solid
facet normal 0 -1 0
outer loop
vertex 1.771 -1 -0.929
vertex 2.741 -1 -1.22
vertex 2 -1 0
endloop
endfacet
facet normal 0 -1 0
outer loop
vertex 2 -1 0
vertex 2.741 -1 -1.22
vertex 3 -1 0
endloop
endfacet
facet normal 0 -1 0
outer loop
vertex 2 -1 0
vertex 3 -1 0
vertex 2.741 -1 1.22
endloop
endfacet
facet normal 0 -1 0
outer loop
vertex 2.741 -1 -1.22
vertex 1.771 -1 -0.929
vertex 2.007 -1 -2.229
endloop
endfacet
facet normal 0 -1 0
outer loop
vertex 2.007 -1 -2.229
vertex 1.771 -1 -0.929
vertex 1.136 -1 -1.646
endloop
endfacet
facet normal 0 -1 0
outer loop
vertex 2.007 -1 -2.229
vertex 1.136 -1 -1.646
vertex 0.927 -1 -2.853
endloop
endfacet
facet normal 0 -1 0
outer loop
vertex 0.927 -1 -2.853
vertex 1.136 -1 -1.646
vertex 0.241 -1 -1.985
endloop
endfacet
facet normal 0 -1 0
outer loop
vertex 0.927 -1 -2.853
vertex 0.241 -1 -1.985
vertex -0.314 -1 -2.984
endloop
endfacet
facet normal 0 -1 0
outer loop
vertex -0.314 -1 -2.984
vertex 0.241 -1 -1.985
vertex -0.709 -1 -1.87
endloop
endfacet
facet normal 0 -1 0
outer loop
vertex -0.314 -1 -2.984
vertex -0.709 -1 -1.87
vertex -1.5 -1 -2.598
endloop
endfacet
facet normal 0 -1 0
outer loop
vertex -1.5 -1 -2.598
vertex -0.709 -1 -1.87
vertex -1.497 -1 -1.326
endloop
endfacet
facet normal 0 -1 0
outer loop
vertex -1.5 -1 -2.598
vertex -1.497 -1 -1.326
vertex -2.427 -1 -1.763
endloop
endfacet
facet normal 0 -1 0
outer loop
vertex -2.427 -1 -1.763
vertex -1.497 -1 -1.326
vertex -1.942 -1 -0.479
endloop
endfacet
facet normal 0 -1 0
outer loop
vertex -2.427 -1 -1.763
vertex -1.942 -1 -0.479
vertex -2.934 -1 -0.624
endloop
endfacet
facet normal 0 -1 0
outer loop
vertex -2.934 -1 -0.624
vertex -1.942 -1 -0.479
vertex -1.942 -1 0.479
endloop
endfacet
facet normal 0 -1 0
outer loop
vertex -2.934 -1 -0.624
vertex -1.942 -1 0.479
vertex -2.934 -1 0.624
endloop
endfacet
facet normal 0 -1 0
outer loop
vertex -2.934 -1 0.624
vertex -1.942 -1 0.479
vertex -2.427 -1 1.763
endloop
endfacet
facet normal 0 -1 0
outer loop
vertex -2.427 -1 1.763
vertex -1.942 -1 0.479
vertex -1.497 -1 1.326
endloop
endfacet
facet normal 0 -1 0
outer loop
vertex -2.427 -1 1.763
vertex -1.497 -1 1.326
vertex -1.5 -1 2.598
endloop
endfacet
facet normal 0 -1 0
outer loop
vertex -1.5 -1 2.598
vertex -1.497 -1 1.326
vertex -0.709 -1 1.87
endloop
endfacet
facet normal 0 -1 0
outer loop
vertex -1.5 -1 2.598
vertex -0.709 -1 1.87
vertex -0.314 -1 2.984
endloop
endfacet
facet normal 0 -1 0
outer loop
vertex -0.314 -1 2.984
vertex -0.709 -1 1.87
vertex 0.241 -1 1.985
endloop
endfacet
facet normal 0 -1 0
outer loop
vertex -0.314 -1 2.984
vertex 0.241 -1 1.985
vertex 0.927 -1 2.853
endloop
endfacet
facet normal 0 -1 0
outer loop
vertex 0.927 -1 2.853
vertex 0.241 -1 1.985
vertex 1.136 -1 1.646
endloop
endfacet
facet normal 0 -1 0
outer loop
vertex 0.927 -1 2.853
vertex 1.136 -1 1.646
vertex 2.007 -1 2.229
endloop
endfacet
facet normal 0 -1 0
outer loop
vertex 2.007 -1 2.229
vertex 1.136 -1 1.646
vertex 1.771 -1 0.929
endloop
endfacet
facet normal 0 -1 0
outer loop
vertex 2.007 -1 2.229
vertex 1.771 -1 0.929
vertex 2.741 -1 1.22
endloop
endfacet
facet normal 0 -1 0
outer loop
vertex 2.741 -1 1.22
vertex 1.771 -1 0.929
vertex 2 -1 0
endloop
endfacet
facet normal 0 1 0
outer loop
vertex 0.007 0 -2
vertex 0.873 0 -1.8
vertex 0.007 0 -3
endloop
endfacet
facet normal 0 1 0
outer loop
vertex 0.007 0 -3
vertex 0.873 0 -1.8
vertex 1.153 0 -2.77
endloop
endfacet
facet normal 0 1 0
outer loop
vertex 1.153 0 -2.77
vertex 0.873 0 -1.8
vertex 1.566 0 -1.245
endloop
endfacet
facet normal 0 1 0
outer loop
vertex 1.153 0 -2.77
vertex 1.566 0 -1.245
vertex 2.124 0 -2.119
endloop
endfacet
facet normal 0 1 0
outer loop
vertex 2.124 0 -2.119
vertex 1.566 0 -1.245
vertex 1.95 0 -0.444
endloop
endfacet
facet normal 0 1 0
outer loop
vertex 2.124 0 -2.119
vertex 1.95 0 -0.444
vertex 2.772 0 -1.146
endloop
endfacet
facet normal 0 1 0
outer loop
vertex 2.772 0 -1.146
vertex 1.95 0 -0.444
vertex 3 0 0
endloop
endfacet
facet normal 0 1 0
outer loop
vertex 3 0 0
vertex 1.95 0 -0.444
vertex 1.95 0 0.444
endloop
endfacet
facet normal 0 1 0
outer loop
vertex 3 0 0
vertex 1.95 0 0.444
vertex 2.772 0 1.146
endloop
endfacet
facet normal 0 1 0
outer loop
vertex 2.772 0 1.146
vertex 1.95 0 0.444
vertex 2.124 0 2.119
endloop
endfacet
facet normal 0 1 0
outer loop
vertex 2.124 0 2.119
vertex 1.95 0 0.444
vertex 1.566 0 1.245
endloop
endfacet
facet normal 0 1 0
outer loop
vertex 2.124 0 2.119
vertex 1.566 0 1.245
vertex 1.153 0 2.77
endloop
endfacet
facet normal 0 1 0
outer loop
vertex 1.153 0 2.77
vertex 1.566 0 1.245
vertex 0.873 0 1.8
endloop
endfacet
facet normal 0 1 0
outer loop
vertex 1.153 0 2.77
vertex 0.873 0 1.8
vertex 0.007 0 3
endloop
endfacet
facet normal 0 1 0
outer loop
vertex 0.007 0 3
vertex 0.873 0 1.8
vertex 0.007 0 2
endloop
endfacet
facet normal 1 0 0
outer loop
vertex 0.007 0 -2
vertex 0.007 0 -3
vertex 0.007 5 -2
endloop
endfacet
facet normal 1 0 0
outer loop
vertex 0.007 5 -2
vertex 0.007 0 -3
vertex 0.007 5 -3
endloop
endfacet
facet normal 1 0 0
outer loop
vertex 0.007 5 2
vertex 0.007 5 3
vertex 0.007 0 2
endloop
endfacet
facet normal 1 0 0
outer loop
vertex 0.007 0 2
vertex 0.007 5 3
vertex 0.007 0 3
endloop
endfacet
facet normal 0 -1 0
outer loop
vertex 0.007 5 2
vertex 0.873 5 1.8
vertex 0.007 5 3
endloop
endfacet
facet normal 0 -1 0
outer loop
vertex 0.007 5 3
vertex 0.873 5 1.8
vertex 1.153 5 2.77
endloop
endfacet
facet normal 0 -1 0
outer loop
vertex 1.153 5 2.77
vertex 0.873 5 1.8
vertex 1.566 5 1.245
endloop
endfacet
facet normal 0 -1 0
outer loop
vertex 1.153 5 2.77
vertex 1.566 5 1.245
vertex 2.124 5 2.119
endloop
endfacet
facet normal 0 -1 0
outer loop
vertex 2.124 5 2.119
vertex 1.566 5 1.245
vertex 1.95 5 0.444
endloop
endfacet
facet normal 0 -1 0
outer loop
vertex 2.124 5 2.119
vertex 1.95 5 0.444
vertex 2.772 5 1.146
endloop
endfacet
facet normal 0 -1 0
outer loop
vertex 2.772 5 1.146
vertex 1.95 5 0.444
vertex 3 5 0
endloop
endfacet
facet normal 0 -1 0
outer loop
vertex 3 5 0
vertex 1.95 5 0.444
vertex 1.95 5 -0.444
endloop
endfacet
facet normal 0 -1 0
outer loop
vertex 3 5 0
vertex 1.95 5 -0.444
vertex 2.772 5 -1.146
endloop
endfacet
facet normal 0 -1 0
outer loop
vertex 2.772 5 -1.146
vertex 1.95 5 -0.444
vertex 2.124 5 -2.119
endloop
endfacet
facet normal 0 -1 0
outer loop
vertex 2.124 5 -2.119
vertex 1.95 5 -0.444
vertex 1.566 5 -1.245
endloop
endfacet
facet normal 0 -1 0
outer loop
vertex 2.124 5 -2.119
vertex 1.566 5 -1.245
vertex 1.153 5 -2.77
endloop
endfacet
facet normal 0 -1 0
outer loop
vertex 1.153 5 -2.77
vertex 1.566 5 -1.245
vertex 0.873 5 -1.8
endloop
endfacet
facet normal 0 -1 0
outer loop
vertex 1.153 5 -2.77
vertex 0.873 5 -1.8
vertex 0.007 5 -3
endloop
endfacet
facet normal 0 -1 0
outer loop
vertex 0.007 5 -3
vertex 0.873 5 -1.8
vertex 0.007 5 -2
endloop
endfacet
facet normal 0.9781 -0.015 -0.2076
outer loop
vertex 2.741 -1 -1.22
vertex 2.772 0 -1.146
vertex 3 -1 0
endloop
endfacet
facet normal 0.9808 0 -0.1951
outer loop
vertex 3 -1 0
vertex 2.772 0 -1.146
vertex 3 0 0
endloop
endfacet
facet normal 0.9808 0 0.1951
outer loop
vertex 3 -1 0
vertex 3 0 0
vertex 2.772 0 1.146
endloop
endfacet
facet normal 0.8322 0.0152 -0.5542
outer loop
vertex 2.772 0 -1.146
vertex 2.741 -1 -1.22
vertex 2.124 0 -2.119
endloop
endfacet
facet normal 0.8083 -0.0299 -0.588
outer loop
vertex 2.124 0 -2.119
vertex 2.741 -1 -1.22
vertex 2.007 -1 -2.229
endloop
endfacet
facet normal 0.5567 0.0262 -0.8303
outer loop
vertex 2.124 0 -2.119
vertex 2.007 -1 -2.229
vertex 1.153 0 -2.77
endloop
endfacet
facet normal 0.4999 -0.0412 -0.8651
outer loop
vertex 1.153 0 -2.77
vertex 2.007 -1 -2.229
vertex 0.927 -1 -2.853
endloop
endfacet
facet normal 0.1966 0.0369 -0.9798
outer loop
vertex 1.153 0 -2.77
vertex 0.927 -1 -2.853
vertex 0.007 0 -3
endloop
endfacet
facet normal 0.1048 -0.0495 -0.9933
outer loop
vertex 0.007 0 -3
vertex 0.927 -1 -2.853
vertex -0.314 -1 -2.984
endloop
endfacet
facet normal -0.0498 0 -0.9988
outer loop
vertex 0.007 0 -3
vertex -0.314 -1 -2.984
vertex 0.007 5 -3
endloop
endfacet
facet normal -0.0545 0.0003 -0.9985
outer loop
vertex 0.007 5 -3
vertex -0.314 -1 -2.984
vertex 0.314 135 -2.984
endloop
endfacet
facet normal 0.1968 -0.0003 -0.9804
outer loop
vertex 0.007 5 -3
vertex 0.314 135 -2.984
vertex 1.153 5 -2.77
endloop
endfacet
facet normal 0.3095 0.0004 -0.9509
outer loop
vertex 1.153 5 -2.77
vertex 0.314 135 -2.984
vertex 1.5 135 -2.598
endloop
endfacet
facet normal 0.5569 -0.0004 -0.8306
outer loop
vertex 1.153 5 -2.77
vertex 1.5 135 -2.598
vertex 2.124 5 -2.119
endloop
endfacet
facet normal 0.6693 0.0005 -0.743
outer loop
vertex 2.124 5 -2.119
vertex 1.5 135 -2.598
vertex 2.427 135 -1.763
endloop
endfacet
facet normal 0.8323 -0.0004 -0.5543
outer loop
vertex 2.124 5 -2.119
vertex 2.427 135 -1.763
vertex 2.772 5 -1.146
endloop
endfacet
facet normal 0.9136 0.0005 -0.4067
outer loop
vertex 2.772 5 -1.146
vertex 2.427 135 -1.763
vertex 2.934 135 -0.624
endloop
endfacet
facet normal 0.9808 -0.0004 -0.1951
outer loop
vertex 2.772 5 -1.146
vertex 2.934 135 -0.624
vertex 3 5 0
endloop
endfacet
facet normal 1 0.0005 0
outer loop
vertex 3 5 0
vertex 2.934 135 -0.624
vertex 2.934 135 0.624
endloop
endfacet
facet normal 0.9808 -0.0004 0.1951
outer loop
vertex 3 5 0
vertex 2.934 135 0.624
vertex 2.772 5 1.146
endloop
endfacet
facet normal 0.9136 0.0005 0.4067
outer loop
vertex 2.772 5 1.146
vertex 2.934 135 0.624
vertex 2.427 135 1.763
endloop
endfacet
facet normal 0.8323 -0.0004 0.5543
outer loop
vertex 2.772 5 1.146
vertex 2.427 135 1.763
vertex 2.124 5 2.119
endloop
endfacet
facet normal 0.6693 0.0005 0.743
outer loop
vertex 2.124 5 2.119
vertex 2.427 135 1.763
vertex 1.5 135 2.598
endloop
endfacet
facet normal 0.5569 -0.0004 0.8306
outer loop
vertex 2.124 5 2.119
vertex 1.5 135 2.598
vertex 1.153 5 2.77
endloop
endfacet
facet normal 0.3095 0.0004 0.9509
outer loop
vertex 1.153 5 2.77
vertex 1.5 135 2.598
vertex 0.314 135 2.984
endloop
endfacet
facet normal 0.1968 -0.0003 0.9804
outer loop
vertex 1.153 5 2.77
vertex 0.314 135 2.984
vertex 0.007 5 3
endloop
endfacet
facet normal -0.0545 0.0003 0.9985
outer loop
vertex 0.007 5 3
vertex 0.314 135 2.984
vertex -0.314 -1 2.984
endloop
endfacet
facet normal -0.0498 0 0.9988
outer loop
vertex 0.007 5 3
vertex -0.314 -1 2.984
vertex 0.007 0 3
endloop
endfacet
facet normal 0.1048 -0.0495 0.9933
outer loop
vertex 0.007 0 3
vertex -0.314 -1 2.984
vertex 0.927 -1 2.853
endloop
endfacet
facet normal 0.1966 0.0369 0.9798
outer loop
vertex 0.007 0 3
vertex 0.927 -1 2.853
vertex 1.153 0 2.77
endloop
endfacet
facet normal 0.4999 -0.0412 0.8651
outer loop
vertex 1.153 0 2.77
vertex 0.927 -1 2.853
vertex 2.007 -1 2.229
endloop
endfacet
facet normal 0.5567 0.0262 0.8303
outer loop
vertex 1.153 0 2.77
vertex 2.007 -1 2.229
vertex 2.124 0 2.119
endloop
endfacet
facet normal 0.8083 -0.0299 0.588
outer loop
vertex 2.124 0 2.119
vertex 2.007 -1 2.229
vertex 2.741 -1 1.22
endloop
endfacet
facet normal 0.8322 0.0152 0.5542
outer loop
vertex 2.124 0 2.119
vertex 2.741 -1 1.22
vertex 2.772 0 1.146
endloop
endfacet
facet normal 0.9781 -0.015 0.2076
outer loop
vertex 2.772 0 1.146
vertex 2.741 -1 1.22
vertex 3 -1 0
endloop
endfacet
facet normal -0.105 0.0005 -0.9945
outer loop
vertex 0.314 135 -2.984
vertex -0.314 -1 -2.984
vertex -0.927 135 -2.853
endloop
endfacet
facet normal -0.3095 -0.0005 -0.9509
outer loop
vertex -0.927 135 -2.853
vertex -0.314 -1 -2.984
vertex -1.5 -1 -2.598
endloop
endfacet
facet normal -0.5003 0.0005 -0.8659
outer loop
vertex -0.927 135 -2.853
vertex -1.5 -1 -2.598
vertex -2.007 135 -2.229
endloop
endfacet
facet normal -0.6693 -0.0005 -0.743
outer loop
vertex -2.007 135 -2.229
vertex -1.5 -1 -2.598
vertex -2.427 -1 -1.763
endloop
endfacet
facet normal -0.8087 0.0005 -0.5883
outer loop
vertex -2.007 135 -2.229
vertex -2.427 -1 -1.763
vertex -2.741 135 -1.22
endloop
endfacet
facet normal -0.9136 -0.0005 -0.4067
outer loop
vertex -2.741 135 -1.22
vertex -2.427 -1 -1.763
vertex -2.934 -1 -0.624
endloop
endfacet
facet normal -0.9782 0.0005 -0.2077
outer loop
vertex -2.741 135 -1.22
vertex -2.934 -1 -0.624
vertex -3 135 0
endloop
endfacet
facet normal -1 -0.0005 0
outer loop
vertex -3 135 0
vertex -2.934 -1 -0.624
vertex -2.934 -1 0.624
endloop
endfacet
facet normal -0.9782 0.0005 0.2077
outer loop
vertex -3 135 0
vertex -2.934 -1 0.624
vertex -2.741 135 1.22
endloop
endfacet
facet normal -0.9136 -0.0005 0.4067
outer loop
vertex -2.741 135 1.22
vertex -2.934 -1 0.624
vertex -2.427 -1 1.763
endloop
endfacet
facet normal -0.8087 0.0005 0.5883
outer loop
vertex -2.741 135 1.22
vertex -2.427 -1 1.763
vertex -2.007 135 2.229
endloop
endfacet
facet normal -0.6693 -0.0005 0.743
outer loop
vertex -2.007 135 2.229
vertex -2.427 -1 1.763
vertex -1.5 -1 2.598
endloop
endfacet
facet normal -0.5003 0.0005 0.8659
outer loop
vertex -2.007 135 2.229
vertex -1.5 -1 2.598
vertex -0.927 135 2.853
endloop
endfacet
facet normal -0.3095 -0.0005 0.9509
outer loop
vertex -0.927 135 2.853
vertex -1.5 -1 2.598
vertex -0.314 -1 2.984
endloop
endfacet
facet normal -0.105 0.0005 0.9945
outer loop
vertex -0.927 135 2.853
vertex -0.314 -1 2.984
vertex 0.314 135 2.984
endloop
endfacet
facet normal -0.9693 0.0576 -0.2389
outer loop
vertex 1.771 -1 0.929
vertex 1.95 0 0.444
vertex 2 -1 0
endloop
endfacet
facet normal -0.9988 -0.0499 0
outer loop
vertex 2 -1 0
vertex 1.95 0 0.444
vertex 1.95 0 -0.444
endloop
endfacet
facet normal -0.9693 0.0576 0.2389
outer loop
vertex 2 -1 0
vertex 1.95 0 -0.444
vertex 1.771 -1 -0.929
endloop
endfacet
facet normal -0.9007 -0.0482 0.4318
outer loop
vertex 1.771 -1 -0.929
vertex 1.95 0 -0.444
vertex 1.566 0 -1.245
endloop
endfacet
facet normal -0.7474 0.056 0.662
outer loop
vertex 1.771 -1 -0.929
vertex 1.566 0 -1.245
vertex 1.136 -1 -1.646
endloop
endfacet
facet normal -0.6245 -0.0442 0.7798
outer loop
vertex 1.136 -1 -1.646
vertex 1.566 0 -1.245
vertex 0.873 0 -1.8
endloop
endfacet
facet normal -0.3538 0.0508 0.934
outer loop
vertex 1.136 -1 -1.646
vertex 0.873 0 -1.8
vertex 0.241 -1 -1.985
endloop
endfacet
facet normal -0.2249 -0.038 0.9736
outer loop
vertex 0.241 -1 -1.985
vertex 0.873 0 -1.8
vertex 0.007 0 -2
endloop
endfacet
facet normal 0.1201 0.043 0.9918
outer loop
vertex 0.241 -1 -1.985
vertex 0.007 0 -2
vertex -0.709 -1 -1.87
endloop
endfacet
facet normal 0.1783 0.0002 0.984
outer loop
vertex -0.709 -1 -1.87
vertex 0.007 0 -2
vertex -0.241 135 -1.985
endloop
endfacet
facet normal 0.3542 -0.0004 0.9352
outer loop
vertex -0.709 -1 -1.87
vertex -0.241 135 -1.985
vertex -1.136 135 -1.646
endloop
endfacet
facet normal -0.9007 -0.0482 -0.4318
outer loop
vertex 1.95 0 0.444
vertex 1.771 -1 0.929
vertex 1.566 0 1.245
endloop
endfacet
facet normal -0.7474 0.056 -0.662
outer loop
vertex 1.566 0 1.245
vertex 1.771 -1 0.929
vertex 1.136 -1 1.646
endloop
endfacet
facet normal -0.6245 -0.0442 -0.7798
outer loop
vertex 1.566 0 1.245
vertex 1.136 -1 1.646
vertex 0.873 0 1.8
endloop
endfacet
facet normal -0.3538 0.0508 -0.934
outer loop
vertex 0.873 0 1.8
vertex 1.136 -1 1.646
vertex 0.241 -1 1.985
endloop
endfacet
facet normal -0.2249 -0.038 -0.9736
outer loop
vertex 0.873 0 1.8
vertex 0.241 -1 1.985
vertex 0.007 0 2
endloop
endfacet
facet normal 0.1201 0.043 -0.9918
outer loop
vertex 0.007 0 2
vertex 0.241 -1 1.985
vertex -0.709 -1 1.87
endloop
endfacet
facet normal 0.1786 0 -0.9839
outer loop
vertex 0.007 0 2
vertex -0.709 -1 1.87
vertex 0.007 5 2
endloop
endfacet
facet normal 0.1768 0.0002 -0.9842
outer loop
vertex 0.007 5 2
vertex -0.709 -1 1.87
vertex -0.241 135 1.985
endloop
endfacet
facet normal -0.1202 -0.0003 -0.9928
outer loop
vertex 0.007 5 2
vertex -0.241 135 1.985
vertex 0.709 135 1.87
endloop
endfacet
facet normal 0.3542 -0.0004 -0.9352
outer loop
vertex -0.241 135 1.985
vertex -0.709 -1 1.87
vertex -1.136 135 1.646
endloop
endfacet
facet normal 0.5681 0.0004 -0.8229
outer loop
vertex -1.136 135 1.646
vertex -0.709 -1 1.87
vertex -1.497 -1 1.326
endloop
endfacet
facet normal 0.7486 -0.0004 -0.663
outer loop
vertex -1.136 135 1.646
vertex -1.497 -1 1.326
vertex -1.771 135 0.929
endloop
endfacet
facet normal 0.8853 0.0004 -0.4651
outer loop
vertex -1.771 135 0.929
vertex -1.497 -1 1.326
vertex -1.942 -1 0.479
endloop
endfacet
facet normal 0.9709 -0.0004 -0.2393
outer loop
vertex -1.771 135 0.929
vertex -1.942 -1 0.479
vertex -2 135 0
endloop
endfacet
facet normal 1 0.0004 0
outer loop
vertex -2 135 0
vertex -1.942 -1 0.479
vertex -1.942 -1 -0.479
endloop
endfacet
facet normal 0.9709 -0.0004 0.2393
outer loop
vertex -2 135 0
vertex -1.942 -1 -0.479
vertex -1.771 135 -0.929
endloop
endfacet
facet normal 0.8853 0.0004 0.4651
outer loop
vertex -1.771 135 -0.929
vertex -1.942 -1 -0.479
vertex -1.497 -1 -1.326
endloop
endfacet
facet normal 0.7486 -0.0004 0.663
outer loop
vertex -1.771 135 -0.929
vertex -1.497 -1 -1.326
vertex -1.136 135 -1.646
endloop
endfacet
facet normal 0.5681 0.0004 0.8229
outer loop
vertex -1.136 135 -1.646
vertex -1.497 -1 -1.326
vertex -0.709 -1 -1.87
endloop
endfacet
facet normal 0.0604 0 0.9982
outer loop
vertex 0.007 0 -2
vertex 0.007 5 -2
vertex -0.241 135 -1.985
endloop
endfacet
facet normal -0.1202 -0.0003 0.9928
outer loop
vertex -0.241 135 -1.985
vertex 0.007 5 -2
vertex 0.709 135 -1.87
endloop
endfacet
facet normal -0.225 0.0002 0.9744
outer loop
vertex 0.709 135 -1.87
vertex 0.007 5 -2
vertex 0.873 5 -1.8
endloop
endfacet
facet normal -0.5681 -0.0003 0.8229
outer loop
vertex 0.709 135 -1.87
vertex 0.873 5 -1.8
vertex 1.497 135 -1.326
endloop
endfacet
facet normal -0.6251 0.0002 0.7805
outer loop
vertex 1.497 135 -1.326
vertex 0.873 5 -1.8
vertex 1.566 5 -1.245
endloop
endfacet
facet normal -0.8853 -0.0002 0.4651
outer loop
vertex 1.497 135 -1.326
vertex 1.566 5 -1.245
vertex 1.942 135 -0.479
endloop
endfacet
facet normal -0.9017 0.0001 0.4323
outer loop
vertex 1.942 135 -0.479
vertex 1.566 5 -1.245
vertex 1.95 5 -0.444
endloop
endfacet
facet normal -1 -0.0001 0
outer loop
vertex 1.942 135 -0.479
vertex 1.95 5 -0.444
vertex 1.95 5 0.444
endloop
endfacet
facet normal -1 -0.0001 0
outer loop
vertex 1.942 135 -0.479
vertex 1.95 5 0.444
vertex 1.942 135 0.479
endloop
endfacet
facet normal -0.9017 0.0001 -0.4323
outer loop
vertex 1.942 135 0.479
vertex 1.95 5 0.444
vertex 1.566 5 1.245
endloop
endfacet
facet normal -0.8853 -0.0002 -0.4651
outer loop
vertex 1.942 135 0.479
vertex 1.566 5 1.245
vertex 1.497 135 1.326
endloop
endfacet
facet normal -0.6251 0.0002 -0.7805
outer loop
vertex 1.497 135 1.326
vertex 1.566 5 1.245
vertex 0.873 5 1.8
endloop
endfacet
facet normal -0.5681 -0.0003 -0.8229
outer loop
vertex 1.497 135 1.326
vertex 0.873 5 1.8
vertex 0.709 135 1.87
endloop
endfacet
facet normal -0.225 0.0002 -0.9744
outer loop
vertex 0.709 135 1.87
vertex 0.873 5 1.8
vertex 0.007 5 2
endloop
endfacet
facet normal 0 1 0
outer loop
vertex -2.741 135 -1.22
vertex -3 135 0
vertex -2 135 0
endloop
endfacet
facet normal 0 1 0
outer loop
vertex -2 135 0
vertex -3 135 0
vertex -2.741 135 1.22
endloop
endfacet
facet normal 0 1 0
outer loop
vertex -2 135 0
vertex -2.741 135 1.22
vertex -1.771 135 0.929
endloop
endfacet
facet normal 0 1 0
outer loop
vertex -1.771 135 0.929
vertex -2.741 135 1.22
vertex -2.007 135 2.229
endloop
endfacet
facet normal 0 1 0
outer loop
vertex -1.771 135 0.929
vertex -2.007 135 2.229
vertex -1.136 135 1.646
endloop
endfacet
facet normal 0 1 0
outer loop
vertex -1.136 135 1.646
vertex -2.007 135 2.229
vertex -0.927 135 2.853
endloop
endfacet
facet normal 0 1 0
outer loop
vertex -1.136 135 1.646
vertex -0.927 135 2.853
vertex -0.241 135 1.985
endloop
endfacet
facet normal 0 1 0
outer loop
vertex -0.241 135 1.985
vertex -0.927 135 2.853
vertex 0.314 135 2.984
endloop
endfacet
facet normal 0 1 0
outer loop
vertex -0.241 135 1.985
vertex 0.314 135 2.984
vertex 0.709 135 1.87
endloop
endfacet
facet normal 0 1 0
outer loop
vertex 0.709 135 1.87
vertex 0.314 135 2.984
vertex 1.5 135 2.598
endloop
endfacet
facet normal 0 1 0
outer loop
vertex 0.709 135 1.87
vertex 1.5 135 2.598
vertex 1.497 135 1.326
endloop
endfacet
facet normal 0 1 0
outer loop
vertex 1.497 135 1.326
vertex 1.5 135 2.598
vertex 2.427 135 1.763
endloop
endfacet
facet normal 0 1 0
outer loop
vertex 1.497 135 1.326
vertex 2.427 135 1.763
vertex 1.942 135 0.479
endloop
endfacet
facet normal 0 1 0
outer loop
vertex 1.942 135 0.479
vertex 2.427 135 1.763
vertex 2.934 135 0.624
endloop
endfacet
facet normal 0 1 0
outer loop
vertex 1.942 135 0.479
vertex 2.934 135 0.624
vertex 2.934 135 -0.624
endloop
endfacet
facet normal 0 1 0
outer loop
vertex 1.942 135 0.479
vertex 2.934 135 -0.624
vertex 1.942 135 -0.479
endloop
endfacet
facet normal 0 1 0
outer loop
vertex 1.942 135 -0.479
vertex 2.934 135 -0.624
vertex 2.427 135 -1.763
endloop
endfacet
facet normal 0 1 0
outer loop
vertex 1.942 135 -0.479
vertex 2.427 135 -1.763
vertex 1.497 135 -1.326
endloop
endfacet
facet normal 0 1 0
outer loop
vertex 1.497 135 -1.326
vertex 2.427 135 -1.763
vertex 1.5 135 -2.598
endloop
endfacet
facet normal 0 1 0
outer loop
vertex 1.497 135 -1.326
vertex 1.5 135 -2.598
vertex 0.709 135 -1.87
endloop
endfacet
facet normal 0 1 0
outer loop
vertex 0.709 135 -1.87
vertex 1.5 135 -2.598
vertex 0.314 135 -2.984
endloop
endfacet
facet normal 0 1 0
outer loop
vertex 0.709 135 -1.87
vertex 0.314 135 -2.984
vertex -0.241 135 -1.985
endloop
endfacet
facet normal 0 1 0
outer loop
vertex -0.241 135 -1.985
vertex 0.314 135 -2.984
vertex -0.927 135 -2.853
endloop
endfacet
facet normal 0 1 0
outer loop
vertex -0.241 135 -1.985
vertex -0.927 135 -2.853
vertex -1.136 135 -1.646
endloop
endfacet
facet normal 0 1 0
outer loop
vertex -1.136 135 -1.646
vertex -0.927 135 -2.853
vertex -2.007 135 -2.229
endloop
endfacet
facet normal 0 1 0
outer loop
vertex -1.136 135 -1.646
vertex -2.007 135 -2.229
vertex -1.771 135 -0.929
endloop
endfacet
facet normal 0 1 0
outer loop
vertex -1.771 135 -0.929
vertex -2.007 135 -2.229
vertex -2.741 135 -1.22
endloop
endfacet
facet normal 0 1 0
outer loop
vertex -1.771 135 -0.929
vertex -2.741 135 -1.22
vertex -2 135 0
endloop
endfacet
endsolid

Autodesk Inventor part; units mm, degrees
ref_plane "YZ Plane" through (0, 0, 0) normal (1, 0, 0) x (0, 1, 0)
ref_plane "XZ Plane" through (0, 0, 0) normal (0, 1, 0) x (-1, 0, 0)
ref_plane "XY Plane" through (0, 0, 0) normal (0, 0, 1) x (1, 0, 0)
sketch "Szkic1" plane through (0, 0, 0) normal (0, 1, 0) x (-1, 0, 0)
  circle A0 centre (0, 0) radius 3
  circle A1 centre (0, 0) radius 2
  dimension "d0" = 6
  dimension "d1" = 4
extrude "Wyciągnięcie proste1" add sketch "Szkic1" along normal blind 135
sketch "Szkic2" plane through (0, 0, 0) normal (0, -1, 0) x (1, 0, 0)
  circle A0 centre (0, 0) radius 2 projected
  circle A1 centre (0, 0) radius 3
  dimension "d4" = 6
sketch "Szkic3" plane through (0, 0, 0) normal (0, -1, 0) x (1, 0, 0)
  circle A0 centre (0, 0) radius 3 projected
  line L0 (-0.7678, 2.9001) -> (-0.7678, 1.8467)
  circle A1 centre (0, 0) radius 2 projected
  line L1 (-0.7678, -1.8467) -> (-0.7678, -2.9012)
  line L2 (0.7678, 2.9001) -> (0.7678, 1.8467)
  line L3 (0.7678, -1.8467) -> (0.7678, -2.9001)
  line L4 (-5.8889, 4.1288) -> (-0.7678, 4.1288)
  line L5 (-0.7678, 4.1288) -> (-0.7678, -5.0287)
  line L6 (-0.7678, -5.0287) -> (-5.8889, -5.0287)
  line L7 (-5.8889, -5.0287) -> (-5.8889, 4.1288)
  line L8 (0.0074, 4.1288) -> (6.1006, 4.1288)
  line L9 (6.1006, 4.1288) -> (6.1006, -5.0287)
  line L10 (6.1006, -5.0287) -> (0.0074, -5.0287)
  line L11 (0.0074, -5.0287) -> (0.0074, 4.1288)
  point P0 (-0.7678, -2.9001)
extrude "Wyciągnięcie proste2" cut sketch "Szkic3" against normal blind 5 contours A0 L3 A1 L2 | A0 L11 L8 L9 L10 | L2 A1 L11 A0 | A0 L11 A1 L3 | A1 L11 | A0 L5 L6 L7 L4
extrude "Wyciągnięcie proste3" add sketch "Szkic2" along normal blind 1 contours A0 | A1
sketch "Szkic4" plane through (0, -1, 0) normal (0, -1, 0) x (1, 0, 0)
  circle A0 centre (0, 0) radius 2
  dimension "d9" = 4
extrude "Wyciągnięcie proste4" cut sketch "Szkic4" against normal blind 5
properties part number "rurkadoczujnika"
